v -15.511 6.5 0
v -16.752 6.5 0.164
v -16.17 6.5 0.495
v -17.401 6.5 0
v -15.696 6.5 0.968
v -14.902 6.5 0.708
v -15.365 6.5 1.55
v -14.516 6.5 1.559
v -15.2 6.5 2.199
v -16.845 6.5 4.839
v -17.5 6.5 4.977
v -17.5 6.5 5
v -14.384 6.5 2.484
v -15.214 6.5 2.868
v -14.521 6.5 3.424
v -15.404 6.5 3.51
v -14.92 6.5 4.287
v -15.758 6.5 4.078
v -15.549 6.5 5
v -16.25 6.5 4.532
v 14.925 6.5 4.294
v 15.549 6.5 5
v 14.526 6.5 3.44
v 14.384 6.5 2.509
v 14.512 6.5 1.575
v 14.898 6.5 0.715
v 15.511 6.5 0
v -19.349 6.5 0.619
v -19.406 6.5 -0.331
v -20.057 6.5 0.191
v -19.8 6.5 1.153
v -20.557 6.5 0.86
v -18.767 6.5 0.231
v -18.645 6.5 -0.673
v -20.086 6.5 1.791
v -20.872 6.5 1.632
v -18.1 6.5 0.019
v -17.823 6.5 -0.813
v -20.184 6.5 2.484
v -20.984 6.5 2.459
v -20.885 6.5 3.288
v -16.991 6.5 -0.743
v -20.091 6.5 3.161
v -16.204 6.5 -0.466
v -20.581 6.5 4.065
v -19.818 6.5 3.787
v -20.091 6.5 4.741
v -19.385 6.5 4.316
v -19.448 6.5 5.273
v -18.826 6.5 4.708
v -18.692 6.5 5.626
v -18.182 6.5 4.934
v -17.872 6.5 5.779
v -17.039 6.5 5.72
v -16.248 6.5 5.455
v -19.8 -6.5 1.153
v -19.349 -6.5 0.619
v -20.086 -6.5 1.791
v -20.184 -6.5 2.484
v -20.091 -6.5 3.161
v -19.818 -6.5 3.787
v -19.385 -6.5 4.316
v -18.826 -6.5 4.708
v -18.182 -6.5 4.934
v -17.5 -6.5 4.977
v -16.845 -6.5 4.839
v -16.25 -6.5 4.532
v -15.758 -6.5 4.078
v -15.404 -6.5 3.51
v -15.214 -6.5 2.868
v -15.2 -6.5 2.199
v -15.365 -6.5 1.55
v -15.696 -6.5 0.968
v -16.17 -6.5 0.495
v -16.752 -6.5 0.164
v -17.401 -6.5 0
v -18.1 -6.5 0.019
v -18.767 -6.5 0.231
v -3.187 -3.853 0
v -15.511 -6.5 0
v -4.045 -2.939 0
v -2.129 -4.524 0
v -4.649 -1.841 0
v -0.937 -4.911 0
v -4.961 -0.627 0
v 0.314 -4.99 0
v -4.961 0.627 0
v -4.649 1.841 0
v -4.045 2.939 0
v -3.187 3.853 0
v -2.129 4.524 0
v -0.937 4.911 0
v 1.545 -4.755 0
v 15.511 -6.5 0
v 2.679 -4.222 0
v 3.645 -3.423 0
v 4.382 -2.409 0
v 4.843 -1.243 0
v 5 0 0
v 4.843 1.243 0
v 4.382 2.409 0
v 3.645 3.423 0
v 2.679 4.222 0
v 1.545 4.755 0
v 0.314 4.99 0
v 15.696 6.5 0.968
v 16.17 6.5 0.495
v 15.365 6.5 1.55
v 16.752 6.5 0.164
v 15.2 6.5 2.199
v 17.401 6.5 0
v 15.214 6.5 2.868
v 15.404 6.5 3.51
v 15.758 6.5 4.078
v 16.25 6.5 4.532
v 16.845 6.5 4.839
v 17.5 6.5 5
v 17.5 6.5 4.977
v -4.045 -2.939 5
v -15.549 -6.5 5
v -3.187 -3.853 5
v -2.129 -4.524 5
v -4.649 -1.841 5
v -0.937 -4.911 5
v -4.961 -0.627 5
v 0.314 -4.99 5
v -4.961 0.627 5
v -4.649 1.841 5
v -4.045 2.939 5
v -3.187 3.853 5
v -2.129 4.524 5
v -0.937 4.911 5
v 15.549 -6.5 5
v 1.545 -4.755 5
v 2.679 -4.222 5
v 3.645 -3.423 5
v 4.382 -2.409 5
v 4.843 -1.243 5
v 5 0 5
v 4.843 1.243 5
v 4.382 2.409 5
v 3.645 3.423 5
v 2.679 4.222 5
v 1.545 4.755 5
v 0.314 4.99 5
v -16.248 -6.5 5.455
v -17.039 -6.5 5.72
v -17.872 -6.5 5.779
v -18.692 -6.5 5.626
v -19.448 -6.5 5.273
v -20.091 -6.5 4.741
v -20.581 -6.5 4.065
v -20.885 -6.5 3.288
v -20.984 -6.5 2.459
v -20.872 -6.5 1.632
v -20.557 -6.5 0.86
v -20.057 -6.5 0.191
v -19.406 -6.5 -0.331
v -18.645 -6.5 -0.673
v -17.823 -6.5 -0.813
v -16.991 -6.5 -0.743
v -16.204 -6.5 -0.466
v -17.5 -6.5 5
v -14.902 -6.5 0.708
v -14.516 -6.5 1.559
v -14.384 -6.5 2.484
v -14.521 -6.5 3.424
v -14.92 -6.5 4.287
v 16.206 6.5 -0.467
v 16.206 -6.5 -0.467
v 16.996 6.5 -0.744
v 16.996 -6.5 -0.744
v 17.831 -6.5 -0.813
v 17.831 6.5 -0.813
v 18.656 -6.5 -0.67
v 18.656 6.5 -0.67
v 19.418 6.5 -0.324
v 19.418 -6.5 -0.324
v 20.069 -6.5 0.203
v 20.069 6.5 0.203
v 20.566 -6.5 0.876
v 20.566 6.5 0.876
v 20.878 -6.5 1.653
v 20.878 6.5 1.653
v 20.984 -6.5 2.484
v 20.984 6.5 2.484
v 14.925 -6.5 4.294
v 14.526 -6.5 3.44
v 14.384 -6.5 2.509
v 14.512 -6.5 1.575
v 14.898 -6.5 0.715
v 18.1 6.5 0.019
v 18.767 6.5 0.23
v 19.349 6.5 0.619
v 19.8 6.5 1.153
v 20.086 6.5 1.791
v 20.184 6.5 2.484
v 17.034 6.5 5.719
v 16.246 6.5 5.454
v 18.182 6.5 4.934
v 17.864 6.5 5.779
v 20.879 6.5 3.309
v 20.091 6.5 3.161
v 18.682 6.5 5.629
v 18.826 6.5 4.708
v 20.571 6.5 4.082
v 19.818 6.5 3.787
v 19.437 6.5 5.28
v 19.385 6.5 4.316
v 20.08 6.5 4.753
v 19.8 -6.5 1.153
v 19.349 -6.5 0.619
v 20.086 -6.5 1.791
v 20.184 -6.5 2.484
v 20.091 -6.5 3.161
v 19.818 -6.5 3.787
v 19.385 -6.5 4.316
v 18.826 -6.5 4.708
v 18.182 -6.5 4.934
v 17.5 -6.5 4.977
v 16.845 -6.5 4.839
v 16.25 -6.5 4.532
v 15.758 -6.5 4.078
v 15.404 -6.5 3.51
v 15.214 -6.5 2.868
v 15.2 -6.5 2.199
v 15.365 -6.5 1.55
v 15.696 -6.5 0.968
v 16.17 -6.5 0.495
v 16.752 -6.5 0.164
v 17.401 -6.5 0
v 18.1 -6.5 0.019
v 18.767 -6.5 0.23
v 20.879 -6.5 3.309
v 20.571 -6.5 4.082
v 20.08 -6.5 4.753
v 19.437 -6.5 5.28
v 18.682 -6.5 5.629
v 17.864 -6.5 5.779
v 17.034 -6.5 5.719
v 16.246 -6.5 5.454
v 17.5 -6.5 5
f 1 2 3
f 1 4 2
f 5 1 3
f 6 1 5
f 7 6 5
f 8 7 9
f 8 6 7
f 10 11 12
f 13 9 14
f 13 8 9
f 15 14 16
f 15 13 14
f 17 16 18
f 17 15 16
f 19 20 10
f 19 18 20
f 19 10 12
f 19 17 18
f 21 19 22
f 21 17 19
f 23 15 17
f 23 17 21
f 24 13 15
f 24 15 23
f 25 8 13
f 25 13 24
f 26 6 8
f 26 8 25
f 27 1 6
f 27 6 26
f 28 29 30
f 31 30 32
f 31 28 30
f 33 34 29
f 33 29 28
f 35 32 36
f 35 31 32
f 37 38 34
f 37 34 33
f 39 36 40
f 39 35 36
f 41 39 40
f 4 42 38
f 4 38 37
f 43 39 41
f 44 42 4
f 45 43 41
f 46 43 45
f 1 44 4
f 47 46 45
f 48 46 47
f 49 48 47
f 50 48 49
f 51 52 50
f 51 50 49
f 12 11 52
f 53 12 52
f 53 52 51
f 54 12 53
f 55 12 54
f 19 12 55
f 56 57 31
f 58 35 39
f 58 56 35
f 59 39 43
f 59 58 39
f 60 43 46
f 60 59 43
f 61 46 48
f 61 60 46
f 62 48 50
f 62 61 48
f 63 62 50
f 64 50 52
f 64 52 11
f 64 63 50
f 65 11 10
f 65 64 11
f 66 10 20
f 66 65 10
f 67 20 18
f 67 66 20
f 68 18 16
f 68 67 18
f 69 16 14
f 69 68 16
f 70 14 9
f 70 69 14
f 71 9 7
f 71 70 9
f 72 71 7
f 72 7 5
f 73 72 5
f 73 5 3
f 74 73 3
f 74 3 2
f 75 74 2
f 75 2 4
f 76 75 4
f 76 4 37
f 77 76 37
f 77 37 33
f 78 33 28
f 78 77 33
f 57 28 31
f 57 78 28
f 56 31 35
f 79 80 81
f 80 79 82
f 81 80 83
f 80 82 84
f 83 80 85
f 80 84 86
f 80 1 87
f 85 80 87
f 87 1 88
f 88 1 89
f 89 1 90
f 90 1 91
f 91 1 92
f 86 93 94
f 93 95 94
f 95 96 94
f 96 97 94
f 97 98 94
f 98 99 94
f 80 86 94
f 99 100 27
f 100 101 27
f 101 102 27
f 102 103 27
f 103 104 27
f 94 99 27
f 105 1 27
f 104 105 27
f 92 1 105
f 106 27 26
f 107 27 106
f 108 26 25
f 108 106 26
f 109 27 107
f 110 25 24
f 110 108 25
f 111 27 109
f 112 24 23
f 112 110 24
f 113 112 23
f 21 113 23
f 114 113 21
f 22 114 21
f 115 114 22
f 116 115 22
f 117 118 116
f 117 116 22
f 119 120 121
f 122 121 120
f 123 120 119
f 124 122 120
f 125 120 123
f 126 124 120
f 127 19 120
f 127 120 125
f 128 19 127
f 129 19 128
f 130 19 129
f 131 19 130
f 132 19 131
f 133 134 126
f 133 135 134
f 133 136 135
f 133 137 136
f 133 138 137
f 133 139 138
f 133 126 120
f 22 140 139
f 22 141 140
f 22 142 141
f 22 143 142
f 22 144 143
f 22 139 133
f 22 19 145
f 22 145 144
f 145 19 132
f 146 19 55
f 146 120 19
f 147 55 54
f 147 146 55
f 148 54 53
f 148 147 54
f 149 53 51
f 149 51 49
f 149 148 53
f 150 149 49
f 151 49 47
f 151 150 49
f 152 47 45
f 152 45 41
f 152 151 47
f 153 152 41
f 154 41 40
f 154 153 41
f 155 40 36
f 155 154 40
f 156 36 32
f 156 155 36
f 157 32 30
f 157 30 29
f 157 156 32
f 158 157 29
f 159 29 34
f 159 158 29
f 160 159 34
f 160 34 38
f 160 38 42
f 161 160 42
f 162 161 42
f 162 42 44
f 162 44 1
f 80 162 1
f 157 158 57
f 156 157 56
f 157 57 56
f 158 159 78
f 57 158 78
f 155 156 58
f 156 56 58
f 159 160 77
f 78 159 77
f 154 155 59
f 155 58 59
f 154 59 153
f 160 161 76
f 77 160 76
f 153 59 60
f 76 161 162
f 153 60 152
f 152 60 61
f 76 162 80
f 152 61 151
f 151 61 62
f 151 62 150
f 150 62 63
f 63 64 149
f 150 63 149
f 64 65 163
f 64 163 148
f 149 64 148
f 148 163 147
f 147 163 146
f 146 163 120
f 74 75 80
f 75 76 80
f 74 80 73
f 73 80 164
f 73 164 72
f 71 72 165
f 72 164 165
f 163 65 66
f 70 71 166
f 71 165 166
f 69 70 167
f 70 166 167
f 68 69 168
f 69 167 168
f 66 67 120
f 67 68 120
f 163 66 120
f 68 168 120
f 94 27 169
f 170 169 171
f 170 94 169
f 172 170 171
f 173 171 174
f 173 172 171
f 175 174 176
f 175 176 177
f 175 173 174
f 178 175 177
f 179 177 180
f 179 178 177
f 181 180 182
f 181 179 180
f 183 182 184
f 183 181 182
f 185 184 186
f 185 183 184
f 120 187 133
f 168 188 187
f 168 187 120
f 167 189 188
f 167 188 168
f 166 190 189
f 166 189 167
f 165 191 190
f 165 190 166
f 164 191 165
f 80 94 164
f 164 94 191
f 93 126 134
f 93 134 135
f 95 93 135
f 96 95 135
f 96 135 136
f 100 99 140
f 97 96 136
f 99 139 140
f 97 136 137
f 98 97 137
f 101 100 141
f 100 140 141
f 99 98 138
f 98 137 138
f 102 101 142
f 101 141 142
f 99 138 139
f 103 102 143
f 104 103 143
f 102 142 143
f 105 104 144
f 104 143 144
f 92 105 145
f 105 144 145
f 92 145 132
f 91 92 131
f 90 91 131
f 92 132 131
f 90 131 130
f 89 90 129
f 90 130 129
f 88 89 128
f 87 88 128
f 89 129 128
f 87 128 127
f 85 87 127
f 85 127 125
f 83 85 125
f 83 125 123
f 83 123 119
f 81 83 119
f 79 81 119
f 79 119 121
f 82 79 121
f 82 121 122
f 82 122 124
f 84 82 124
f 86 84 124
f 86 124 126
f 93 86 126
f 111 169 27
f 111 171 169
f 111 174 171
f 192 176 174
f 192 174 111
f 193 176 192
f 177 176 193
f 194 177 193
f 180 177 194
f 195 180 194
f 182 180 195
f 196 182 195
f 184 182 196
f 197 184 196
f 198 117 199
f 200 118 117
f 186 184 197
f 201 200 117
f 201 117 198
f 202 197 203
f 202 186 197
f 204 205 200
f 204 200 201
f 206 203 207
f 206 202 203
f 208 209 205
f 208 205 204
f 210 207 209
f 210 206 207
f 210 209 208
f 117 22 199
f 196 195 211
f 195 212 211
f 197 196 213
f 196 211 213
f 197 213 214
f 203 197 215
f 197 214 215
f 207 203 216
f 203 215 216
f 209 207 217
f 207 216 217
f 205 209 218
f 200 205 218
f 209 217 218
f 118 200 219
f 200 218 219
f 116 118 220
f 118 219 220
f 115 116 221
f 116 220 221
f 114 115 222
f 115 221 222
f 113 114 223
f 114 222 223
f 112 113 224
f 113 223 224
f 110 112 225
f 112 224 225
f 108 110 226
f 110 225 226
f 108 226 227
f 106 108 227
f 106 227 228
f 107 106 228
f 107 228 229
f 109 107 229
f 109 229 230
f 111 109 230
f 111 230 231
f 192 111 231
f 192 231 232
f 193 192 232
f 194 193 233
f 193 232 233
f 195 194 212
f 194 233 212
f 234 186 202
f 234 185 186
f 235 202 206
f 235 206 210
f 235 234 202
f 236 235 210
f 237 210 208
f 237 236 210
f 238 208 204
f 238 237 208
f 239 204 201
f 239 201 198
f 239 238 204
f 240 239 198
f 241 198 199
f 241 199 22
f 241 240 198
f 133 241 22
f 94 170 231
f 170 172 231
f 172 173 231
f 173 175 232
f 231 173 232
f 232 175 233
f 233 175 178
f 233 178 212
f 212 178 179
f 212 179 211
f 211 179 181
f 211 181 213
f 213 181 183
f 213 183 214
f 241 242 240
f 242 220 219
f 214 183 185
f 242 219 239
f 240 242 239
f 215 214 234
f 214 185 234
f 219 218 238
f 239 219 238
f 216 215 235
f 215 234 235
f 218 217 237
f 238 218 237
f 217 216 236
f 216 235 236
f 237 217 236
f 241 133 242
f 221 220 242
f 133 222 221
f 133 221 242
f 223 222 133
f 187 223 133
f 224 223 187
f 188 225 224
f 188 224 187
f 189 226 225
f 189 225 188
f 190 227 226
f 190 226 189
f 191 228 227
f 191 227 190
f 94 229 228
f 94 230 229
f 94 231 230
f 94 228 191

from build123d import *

# Parameters (mm, degrees)
SKETCH002_R  = 2.5
PAD002_DEPTH = 13
SKETCH_W     = 35
SKETCH_H     = 13
PAD_DEPTH    = 5
SKETCH003_R  = 3.3
PAD003_DEPTH = 13
SKETCH004_R  = 5
POCKET_DEPTH = 5


with BuildPart() as pad002:
    # Sketch002 → Pad002 (new body)
    with BuildSketch(Plane.XZ.offset(6.5)):
        with Locations((17.683945, 2.483897)):
            Circle(SKETCH002_R)
    extrude(amount=-PAD002_DEPTH)


with BuildPart() as part_mirroring001:
    # Part__Mirroring001: instance of Pad002
    add(pad002.part.mirror(Plane(origin=(0, 0, 2.483897), x_dir=(0, -1, 0), z_dir=(1, 0, 0))))


with BuildPart() as scassi:
    # Fusion001 base: copy of Pad002
    add(pad002.part)

    # Fusion001: union Part__Mirroring001
    add(part_mirroring001.part)


with BuildPart() as pocket:
    # Sketch → Pad (new body)
    with BuildSketch(Plane.XY):
        Rectangle(SKETCH_W, SKETCH_H)
    extrude(amount=PAD_DEPTH)

    # Sketch003 → Pad003 (new body)
    with BuildSketch(Plane.XZ.offset(6.5)):
        with Locations((17.683945, 2.483897)):
            Circle(SKETCH003_R)
        with Locations((-17.683945, 2.483897)):
            Circle(SKETCH003_R)
    extrude(amount=-PAD003_DEPTH)

    # Cut: cut scassi
    add(scassi.part, mode=Mode.SUBTRACT)

    # Sketch004 → Pocket (cut)
    with BuildSketch(Plane.XY.offset(5)):
        Circle(SKETCH004_R)
    extrude(amount=-POCKET_DEPTH, mode=Mode.SUBTRACT)


solid = pocket.part
